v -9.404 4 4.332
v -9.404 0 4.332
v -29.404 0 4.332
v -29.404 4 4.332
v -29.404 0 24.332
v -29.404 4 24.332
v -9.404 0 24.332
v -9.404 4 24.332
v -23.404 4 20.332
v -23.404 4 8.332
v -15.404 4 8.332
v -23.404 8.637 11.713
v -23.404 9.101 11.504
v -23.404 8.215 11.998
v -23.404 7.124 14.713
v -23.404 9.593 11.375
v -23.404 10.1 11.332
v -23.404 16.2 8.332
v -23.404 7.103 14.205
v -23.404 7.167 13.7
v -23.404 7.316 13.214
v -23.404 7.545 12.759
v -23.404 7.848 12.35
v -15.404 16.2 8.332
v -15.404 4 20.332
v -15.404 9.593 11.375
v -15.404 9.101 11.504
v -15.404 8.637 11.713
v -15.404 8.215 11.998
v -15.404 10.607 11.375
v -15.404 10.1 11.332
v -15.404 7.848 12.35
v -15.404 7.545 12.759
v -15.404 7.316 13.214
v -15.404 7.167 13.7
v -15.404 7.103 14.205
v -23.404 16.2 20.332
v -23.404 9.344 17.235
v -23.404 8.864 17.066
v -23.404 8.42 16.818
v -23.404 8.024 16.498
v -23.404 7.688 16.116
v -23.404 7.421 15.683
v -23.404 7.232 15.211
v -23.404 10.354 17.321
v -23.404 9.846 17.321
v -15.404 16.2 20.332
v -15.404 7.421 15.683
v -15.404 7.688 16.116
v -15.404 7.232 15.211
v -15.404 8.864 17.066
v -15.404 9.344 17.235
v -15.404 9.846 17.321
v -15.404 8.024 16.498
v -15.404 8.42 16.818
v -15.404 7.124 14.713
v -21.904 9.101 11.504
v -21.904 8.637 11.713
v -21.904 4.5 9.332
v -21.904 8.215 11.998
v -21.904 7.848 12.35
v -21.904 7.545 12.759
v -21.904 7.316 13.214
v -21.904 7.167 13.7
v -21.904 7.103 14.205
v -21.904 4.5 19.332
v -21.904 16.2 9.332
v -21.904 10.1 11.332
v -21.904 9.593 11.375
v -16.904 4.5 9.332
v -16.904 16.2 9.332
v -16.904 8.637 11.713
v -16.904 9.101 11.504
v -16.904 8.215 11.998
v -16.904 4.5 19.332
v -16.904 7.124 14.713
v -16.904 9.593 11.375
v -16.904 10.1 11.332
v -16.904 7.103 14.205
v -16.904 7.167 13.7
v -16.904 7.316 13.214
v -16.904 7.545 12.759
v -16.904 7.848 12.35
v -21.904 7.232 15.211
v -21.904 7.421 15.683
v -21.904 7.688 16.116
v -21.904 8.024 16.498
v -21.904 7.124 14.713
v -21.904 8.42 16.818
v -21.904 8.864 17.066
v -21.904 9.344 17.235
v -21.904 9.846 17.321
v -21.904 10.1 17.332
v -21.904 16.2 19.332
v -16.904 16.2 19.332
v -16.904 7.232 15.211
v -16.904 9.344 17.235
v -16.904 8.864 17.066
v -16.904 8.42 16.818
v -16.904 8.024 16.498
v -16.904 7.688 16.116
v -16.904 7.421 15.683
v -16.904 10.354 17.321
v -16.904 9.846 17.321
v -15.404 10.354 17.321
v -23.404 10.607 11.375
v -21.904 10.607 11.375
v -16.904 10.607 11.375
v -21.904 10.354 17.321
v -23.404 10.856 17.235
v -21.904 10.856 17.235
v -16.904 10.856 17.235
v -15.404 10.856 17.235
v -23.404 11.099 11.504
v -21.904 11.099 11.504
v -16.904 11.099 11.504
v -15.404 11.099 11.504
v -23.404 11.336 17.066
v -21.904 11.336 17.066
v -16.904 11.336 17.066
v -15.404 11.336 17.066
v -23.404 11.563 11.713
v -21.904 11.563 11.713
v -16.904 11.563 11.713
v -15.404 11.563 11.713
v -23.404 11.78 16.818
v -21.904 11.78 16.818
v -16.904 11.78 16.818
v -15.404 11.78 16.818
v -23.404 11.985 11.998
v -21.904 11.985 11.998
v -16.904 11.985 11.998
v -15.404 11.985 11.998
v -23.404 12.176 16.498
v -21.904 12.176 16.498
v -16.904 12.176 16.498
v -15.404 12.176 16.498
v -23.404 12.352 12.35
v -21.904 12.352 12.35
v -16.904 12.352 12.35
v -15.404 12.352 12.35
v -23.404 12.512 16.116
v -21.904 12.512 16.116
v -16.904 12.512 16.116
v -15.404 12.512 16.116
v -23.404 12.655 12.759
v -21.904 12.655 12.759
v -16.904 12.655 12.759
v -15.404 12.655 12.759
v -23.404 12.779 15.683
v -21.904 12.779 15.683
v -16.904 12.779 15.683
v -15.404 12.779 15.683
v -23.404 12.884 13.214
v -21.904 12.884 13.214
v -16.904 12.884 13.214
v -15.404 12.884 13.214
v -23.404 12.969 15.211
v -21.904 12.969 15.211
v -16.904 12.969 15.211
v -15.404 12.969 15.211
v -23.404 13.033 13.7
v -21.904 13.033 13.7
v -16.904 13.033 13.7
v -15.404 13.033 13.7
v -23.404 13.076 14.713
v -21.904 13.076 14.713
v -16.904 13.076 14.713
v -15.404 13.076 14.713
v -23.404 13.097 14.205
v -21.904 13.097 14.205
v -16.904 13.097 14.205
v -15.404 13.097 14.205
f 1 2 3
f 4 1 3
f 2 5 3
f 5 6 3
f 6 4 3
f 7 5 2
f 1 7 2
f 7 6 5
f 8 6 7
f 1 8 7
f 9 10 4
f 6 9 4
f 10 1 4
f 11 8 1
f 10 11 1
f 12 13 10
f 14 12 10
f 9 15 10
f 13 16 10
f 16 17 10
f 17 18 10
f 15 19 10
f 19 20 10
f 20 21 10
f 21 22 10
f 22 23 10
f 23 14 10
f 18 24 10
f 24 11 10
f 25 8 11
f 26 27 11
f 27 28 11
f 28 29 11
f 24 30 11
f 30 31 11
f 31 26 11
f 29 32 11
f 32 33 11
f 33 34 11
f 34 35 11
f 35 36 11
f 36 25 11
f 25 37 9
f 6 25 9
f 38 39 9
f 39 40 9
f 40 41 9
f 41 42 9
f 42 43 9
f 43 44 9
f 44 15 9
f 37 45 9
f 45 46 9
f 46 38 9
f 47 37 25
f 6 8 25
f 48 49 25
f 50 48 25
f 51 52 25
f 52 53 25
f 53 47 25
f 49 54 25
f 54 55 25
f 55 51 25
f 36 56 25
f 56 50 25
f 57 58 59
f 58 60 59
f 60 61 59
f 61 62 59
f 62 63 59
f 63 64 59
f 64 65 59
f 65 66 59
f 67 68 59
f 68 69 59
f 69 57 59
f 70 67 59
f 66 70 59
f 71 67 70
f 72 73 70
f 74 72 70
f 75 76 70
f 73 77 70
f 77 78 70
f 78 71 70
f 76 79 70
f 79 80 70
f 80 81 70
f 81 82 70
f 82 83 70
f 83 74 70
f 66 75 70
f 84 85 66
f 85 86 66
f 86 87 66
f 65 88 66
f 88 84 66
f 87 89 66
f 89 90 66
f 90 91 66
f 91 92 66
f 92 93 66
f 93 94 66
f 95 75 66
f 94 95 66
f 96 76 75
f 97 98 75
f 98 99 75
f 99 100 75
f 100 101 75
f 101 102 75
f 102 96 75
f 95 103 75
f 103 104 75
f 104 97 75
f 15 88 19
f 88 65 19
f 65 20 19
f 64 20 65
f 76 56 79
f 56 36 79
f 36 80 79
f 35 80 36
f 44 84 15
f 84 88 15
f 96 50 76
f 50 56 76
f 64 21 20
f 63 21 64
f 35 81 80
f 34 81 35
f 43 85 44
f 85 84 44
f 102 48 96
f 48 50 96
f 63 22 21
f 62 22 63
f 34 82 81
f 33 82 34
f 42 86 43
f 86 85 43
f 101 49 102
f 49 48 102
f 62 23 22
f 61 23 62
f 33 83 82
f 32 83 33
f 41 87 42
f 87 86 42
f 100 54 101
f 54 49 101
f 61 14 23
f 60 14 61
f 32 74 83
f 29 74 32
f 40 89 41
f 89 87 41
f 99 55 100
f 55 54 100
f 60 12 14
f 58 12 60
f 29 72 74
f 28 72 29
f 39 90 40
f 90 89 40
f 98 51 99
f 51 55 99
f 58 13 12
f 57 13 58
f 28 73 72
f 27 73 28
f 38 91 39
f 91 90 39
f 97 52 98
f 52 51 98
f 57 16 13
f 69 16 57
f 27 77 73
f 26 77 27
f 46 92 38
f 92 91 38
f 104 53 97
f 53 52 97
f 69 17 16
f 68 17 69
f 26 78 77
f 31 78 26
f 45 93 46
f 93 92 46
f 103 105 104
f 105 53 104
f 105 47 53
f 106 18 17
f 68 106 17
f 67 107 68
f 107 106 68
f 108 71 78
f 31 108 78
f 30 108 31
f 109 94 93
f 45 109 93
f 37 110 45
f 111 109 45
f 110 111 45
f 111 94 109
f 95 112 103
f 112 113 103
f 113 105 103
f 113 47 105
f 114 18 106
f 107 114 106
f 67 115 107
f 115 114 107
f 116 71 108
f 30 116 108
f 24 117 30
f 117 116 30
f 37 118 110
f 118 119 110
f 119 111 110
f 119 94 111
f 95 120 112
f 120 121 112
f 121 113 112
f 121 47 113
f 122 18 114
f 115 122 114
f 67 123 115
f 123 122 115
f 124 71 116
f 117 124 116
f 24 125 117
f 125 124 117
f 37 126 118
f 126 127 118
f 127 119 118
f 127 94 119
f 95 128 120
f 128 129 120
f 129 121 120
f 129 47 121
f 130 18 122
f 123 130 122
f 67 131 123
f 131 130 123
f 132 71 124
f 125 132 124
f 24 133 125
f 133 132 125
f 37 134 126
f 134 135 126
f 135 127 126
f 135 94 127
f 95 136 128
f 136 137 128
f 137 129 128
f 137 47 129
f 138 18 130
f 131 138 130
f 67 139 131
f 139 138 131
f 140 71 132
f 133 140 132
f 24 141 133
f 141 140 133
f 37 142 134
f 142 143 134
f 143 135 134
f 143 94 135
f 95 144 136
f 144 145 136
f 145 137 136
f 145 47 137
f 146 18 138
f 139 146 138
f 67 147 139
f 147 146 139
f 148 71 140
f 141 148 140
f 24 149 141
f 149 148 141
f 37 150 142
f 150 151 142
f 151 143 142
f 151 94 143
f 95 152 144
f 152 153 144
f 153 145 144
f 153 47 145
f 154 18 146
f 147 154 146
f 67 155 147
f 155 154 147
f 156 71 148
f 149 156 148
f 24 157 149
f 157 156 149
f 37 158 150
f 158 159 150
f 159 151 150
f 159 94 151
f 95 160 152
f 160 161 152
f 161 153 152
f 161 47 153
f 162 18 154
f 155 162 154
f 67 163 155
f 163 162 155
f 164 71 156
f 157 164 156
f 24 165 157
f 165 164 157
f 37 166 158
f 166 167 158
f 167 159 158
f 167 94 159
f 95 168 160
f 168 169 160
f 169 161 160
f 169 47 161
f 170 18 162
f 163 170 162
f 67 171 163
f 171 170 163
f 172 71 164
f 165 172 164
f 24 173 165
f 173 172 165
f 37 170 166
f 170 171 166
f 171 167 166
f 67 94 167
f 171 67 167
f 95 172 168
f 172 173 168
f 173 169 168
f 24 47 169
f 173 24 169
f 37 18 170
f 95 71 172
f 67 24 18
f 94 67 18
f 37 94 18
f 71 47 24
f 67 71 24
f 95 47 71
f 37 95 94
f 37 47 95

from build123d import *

# Parameters (mm, degrees)
SKETCH2_W           = 42
SKETCH2_H           = 16
BOSS_EXTRUDE1_DEPTH = 4
SKETCH9_W           = 8
SKETCH9_H           = 12
BOSS_EXTRUDE3_DEPTH = 12.2
SKETCH10_W          = 5
SKETCH10_H          = 10
CUT_EXTRUDE6_DEPTH  = 11.7
SKETCH12_R          = 3
CUT_EXTRUDE7_DEPTH  = 8
SKETCH17_W          = 42
SKETCH17_H          = 4
BOSS_EXTRUDE4_DEPTH = 4
SKETCH21_W          = 20
SKETCH21_H          = 4
CUT_EXTRUDE8_DEPTH  = 11
SKETCH22_W          = 20
SKETCH22_H          = 4
CUT_EXTRUDE9_DEPTH  = 11


with BuildPart() as part:
    # Sketch2 → Boss-Extrude1 (new body)
    with BuildSketch(Plane(origin=(0, 0, 0), x_dir=(1, 0, 0), z_dir=(0, 1, 0))):
        with Locations((-19.403711124, -12.332190114)):
            Rectangle(SKETCH2_W, SKETCH2_H)
    extrude(amount=BOSS_EXTRUDE1_DEPTH)

    # Sketch9 → Boss-Extrude3 (add)
    with BuildSketch(Plane(origin=(0, 4, 0), x_dir=(1, 0, 0), z_dir=(0, 1, 0))):
        with Locations((-19.403711124, -14.332190114)):
            Rectangle(SKETCH9_W, SKETCH9_H)
    extrude(amount=BOSS_EXTRUDE3_DEPTH)

    # Sketch10 → Cut-Extrude6 (cut)
    with BuildSketch(Plane(origin=(0, 16.2, 0), x_dir=(1, 0, 0), z_dir=(0, 1, 0))):
        with Locations((-19.403711124, -14.332190114)):
            Rectangle(SKETCH10_W, SKETCH10_H)
    extrude(amount=-CUT_EXTRUDE6_DEPTH, mode=Mode.SUBTRACT)

    # Sketch12 → Cut-Extrude7 (cut)
    with BuildSketch(Plane(origin=(-15.403711124, 0, 0), x_dir=(0, 0, -1), z_dir=(1, 0, 0))):
        with Locations((-14.332190114, 10.1)):
            Circle(SKETCH12_R)
    extrude(amount=-CUT_EXTRUDE7_DEPTH, mode=Mode.SUBTRACT)

    # Sketch17 → Boss-Extrude4 (add)
    with BuildSketch(Plane.XY.offset(20.332190114)):
        with Locations((-19.403711124, 2)):
            Rectangle(SKETCH17_W, SKETCH17_H)
    extrude(amount=BOSS_EXTRUDE4_DEPTH)

    # Sketch21 → Cut-Extrude8 (cut)
    with BuildSketch(Plane.ZY.offset(40.403711124)):
        with Locations((14.332190114, 2)):
            Rectangle(SKETCH21_W, SKETCH21_H)
    extrude(amount=-CUT_EXTRUDE8_DEPTH, mode=Mode.SUBTRACT)

    # Sketch22 → Cut-Extrude9 (cut)
    with BuildSketch(Plane(origin=(1.596288876, 0, 0), x_dir=(0, 0, -1), z_dir=(1, 0, 0))):
        with Locations((-14.332190114, 2)):
            Rectangle(SKETCH22_W, SKETCH22_H)
    extrude(amount=-CUT_EXTRUDE9_DEPTH, mode=Mode.SUBTRACT)


solid = part.part
